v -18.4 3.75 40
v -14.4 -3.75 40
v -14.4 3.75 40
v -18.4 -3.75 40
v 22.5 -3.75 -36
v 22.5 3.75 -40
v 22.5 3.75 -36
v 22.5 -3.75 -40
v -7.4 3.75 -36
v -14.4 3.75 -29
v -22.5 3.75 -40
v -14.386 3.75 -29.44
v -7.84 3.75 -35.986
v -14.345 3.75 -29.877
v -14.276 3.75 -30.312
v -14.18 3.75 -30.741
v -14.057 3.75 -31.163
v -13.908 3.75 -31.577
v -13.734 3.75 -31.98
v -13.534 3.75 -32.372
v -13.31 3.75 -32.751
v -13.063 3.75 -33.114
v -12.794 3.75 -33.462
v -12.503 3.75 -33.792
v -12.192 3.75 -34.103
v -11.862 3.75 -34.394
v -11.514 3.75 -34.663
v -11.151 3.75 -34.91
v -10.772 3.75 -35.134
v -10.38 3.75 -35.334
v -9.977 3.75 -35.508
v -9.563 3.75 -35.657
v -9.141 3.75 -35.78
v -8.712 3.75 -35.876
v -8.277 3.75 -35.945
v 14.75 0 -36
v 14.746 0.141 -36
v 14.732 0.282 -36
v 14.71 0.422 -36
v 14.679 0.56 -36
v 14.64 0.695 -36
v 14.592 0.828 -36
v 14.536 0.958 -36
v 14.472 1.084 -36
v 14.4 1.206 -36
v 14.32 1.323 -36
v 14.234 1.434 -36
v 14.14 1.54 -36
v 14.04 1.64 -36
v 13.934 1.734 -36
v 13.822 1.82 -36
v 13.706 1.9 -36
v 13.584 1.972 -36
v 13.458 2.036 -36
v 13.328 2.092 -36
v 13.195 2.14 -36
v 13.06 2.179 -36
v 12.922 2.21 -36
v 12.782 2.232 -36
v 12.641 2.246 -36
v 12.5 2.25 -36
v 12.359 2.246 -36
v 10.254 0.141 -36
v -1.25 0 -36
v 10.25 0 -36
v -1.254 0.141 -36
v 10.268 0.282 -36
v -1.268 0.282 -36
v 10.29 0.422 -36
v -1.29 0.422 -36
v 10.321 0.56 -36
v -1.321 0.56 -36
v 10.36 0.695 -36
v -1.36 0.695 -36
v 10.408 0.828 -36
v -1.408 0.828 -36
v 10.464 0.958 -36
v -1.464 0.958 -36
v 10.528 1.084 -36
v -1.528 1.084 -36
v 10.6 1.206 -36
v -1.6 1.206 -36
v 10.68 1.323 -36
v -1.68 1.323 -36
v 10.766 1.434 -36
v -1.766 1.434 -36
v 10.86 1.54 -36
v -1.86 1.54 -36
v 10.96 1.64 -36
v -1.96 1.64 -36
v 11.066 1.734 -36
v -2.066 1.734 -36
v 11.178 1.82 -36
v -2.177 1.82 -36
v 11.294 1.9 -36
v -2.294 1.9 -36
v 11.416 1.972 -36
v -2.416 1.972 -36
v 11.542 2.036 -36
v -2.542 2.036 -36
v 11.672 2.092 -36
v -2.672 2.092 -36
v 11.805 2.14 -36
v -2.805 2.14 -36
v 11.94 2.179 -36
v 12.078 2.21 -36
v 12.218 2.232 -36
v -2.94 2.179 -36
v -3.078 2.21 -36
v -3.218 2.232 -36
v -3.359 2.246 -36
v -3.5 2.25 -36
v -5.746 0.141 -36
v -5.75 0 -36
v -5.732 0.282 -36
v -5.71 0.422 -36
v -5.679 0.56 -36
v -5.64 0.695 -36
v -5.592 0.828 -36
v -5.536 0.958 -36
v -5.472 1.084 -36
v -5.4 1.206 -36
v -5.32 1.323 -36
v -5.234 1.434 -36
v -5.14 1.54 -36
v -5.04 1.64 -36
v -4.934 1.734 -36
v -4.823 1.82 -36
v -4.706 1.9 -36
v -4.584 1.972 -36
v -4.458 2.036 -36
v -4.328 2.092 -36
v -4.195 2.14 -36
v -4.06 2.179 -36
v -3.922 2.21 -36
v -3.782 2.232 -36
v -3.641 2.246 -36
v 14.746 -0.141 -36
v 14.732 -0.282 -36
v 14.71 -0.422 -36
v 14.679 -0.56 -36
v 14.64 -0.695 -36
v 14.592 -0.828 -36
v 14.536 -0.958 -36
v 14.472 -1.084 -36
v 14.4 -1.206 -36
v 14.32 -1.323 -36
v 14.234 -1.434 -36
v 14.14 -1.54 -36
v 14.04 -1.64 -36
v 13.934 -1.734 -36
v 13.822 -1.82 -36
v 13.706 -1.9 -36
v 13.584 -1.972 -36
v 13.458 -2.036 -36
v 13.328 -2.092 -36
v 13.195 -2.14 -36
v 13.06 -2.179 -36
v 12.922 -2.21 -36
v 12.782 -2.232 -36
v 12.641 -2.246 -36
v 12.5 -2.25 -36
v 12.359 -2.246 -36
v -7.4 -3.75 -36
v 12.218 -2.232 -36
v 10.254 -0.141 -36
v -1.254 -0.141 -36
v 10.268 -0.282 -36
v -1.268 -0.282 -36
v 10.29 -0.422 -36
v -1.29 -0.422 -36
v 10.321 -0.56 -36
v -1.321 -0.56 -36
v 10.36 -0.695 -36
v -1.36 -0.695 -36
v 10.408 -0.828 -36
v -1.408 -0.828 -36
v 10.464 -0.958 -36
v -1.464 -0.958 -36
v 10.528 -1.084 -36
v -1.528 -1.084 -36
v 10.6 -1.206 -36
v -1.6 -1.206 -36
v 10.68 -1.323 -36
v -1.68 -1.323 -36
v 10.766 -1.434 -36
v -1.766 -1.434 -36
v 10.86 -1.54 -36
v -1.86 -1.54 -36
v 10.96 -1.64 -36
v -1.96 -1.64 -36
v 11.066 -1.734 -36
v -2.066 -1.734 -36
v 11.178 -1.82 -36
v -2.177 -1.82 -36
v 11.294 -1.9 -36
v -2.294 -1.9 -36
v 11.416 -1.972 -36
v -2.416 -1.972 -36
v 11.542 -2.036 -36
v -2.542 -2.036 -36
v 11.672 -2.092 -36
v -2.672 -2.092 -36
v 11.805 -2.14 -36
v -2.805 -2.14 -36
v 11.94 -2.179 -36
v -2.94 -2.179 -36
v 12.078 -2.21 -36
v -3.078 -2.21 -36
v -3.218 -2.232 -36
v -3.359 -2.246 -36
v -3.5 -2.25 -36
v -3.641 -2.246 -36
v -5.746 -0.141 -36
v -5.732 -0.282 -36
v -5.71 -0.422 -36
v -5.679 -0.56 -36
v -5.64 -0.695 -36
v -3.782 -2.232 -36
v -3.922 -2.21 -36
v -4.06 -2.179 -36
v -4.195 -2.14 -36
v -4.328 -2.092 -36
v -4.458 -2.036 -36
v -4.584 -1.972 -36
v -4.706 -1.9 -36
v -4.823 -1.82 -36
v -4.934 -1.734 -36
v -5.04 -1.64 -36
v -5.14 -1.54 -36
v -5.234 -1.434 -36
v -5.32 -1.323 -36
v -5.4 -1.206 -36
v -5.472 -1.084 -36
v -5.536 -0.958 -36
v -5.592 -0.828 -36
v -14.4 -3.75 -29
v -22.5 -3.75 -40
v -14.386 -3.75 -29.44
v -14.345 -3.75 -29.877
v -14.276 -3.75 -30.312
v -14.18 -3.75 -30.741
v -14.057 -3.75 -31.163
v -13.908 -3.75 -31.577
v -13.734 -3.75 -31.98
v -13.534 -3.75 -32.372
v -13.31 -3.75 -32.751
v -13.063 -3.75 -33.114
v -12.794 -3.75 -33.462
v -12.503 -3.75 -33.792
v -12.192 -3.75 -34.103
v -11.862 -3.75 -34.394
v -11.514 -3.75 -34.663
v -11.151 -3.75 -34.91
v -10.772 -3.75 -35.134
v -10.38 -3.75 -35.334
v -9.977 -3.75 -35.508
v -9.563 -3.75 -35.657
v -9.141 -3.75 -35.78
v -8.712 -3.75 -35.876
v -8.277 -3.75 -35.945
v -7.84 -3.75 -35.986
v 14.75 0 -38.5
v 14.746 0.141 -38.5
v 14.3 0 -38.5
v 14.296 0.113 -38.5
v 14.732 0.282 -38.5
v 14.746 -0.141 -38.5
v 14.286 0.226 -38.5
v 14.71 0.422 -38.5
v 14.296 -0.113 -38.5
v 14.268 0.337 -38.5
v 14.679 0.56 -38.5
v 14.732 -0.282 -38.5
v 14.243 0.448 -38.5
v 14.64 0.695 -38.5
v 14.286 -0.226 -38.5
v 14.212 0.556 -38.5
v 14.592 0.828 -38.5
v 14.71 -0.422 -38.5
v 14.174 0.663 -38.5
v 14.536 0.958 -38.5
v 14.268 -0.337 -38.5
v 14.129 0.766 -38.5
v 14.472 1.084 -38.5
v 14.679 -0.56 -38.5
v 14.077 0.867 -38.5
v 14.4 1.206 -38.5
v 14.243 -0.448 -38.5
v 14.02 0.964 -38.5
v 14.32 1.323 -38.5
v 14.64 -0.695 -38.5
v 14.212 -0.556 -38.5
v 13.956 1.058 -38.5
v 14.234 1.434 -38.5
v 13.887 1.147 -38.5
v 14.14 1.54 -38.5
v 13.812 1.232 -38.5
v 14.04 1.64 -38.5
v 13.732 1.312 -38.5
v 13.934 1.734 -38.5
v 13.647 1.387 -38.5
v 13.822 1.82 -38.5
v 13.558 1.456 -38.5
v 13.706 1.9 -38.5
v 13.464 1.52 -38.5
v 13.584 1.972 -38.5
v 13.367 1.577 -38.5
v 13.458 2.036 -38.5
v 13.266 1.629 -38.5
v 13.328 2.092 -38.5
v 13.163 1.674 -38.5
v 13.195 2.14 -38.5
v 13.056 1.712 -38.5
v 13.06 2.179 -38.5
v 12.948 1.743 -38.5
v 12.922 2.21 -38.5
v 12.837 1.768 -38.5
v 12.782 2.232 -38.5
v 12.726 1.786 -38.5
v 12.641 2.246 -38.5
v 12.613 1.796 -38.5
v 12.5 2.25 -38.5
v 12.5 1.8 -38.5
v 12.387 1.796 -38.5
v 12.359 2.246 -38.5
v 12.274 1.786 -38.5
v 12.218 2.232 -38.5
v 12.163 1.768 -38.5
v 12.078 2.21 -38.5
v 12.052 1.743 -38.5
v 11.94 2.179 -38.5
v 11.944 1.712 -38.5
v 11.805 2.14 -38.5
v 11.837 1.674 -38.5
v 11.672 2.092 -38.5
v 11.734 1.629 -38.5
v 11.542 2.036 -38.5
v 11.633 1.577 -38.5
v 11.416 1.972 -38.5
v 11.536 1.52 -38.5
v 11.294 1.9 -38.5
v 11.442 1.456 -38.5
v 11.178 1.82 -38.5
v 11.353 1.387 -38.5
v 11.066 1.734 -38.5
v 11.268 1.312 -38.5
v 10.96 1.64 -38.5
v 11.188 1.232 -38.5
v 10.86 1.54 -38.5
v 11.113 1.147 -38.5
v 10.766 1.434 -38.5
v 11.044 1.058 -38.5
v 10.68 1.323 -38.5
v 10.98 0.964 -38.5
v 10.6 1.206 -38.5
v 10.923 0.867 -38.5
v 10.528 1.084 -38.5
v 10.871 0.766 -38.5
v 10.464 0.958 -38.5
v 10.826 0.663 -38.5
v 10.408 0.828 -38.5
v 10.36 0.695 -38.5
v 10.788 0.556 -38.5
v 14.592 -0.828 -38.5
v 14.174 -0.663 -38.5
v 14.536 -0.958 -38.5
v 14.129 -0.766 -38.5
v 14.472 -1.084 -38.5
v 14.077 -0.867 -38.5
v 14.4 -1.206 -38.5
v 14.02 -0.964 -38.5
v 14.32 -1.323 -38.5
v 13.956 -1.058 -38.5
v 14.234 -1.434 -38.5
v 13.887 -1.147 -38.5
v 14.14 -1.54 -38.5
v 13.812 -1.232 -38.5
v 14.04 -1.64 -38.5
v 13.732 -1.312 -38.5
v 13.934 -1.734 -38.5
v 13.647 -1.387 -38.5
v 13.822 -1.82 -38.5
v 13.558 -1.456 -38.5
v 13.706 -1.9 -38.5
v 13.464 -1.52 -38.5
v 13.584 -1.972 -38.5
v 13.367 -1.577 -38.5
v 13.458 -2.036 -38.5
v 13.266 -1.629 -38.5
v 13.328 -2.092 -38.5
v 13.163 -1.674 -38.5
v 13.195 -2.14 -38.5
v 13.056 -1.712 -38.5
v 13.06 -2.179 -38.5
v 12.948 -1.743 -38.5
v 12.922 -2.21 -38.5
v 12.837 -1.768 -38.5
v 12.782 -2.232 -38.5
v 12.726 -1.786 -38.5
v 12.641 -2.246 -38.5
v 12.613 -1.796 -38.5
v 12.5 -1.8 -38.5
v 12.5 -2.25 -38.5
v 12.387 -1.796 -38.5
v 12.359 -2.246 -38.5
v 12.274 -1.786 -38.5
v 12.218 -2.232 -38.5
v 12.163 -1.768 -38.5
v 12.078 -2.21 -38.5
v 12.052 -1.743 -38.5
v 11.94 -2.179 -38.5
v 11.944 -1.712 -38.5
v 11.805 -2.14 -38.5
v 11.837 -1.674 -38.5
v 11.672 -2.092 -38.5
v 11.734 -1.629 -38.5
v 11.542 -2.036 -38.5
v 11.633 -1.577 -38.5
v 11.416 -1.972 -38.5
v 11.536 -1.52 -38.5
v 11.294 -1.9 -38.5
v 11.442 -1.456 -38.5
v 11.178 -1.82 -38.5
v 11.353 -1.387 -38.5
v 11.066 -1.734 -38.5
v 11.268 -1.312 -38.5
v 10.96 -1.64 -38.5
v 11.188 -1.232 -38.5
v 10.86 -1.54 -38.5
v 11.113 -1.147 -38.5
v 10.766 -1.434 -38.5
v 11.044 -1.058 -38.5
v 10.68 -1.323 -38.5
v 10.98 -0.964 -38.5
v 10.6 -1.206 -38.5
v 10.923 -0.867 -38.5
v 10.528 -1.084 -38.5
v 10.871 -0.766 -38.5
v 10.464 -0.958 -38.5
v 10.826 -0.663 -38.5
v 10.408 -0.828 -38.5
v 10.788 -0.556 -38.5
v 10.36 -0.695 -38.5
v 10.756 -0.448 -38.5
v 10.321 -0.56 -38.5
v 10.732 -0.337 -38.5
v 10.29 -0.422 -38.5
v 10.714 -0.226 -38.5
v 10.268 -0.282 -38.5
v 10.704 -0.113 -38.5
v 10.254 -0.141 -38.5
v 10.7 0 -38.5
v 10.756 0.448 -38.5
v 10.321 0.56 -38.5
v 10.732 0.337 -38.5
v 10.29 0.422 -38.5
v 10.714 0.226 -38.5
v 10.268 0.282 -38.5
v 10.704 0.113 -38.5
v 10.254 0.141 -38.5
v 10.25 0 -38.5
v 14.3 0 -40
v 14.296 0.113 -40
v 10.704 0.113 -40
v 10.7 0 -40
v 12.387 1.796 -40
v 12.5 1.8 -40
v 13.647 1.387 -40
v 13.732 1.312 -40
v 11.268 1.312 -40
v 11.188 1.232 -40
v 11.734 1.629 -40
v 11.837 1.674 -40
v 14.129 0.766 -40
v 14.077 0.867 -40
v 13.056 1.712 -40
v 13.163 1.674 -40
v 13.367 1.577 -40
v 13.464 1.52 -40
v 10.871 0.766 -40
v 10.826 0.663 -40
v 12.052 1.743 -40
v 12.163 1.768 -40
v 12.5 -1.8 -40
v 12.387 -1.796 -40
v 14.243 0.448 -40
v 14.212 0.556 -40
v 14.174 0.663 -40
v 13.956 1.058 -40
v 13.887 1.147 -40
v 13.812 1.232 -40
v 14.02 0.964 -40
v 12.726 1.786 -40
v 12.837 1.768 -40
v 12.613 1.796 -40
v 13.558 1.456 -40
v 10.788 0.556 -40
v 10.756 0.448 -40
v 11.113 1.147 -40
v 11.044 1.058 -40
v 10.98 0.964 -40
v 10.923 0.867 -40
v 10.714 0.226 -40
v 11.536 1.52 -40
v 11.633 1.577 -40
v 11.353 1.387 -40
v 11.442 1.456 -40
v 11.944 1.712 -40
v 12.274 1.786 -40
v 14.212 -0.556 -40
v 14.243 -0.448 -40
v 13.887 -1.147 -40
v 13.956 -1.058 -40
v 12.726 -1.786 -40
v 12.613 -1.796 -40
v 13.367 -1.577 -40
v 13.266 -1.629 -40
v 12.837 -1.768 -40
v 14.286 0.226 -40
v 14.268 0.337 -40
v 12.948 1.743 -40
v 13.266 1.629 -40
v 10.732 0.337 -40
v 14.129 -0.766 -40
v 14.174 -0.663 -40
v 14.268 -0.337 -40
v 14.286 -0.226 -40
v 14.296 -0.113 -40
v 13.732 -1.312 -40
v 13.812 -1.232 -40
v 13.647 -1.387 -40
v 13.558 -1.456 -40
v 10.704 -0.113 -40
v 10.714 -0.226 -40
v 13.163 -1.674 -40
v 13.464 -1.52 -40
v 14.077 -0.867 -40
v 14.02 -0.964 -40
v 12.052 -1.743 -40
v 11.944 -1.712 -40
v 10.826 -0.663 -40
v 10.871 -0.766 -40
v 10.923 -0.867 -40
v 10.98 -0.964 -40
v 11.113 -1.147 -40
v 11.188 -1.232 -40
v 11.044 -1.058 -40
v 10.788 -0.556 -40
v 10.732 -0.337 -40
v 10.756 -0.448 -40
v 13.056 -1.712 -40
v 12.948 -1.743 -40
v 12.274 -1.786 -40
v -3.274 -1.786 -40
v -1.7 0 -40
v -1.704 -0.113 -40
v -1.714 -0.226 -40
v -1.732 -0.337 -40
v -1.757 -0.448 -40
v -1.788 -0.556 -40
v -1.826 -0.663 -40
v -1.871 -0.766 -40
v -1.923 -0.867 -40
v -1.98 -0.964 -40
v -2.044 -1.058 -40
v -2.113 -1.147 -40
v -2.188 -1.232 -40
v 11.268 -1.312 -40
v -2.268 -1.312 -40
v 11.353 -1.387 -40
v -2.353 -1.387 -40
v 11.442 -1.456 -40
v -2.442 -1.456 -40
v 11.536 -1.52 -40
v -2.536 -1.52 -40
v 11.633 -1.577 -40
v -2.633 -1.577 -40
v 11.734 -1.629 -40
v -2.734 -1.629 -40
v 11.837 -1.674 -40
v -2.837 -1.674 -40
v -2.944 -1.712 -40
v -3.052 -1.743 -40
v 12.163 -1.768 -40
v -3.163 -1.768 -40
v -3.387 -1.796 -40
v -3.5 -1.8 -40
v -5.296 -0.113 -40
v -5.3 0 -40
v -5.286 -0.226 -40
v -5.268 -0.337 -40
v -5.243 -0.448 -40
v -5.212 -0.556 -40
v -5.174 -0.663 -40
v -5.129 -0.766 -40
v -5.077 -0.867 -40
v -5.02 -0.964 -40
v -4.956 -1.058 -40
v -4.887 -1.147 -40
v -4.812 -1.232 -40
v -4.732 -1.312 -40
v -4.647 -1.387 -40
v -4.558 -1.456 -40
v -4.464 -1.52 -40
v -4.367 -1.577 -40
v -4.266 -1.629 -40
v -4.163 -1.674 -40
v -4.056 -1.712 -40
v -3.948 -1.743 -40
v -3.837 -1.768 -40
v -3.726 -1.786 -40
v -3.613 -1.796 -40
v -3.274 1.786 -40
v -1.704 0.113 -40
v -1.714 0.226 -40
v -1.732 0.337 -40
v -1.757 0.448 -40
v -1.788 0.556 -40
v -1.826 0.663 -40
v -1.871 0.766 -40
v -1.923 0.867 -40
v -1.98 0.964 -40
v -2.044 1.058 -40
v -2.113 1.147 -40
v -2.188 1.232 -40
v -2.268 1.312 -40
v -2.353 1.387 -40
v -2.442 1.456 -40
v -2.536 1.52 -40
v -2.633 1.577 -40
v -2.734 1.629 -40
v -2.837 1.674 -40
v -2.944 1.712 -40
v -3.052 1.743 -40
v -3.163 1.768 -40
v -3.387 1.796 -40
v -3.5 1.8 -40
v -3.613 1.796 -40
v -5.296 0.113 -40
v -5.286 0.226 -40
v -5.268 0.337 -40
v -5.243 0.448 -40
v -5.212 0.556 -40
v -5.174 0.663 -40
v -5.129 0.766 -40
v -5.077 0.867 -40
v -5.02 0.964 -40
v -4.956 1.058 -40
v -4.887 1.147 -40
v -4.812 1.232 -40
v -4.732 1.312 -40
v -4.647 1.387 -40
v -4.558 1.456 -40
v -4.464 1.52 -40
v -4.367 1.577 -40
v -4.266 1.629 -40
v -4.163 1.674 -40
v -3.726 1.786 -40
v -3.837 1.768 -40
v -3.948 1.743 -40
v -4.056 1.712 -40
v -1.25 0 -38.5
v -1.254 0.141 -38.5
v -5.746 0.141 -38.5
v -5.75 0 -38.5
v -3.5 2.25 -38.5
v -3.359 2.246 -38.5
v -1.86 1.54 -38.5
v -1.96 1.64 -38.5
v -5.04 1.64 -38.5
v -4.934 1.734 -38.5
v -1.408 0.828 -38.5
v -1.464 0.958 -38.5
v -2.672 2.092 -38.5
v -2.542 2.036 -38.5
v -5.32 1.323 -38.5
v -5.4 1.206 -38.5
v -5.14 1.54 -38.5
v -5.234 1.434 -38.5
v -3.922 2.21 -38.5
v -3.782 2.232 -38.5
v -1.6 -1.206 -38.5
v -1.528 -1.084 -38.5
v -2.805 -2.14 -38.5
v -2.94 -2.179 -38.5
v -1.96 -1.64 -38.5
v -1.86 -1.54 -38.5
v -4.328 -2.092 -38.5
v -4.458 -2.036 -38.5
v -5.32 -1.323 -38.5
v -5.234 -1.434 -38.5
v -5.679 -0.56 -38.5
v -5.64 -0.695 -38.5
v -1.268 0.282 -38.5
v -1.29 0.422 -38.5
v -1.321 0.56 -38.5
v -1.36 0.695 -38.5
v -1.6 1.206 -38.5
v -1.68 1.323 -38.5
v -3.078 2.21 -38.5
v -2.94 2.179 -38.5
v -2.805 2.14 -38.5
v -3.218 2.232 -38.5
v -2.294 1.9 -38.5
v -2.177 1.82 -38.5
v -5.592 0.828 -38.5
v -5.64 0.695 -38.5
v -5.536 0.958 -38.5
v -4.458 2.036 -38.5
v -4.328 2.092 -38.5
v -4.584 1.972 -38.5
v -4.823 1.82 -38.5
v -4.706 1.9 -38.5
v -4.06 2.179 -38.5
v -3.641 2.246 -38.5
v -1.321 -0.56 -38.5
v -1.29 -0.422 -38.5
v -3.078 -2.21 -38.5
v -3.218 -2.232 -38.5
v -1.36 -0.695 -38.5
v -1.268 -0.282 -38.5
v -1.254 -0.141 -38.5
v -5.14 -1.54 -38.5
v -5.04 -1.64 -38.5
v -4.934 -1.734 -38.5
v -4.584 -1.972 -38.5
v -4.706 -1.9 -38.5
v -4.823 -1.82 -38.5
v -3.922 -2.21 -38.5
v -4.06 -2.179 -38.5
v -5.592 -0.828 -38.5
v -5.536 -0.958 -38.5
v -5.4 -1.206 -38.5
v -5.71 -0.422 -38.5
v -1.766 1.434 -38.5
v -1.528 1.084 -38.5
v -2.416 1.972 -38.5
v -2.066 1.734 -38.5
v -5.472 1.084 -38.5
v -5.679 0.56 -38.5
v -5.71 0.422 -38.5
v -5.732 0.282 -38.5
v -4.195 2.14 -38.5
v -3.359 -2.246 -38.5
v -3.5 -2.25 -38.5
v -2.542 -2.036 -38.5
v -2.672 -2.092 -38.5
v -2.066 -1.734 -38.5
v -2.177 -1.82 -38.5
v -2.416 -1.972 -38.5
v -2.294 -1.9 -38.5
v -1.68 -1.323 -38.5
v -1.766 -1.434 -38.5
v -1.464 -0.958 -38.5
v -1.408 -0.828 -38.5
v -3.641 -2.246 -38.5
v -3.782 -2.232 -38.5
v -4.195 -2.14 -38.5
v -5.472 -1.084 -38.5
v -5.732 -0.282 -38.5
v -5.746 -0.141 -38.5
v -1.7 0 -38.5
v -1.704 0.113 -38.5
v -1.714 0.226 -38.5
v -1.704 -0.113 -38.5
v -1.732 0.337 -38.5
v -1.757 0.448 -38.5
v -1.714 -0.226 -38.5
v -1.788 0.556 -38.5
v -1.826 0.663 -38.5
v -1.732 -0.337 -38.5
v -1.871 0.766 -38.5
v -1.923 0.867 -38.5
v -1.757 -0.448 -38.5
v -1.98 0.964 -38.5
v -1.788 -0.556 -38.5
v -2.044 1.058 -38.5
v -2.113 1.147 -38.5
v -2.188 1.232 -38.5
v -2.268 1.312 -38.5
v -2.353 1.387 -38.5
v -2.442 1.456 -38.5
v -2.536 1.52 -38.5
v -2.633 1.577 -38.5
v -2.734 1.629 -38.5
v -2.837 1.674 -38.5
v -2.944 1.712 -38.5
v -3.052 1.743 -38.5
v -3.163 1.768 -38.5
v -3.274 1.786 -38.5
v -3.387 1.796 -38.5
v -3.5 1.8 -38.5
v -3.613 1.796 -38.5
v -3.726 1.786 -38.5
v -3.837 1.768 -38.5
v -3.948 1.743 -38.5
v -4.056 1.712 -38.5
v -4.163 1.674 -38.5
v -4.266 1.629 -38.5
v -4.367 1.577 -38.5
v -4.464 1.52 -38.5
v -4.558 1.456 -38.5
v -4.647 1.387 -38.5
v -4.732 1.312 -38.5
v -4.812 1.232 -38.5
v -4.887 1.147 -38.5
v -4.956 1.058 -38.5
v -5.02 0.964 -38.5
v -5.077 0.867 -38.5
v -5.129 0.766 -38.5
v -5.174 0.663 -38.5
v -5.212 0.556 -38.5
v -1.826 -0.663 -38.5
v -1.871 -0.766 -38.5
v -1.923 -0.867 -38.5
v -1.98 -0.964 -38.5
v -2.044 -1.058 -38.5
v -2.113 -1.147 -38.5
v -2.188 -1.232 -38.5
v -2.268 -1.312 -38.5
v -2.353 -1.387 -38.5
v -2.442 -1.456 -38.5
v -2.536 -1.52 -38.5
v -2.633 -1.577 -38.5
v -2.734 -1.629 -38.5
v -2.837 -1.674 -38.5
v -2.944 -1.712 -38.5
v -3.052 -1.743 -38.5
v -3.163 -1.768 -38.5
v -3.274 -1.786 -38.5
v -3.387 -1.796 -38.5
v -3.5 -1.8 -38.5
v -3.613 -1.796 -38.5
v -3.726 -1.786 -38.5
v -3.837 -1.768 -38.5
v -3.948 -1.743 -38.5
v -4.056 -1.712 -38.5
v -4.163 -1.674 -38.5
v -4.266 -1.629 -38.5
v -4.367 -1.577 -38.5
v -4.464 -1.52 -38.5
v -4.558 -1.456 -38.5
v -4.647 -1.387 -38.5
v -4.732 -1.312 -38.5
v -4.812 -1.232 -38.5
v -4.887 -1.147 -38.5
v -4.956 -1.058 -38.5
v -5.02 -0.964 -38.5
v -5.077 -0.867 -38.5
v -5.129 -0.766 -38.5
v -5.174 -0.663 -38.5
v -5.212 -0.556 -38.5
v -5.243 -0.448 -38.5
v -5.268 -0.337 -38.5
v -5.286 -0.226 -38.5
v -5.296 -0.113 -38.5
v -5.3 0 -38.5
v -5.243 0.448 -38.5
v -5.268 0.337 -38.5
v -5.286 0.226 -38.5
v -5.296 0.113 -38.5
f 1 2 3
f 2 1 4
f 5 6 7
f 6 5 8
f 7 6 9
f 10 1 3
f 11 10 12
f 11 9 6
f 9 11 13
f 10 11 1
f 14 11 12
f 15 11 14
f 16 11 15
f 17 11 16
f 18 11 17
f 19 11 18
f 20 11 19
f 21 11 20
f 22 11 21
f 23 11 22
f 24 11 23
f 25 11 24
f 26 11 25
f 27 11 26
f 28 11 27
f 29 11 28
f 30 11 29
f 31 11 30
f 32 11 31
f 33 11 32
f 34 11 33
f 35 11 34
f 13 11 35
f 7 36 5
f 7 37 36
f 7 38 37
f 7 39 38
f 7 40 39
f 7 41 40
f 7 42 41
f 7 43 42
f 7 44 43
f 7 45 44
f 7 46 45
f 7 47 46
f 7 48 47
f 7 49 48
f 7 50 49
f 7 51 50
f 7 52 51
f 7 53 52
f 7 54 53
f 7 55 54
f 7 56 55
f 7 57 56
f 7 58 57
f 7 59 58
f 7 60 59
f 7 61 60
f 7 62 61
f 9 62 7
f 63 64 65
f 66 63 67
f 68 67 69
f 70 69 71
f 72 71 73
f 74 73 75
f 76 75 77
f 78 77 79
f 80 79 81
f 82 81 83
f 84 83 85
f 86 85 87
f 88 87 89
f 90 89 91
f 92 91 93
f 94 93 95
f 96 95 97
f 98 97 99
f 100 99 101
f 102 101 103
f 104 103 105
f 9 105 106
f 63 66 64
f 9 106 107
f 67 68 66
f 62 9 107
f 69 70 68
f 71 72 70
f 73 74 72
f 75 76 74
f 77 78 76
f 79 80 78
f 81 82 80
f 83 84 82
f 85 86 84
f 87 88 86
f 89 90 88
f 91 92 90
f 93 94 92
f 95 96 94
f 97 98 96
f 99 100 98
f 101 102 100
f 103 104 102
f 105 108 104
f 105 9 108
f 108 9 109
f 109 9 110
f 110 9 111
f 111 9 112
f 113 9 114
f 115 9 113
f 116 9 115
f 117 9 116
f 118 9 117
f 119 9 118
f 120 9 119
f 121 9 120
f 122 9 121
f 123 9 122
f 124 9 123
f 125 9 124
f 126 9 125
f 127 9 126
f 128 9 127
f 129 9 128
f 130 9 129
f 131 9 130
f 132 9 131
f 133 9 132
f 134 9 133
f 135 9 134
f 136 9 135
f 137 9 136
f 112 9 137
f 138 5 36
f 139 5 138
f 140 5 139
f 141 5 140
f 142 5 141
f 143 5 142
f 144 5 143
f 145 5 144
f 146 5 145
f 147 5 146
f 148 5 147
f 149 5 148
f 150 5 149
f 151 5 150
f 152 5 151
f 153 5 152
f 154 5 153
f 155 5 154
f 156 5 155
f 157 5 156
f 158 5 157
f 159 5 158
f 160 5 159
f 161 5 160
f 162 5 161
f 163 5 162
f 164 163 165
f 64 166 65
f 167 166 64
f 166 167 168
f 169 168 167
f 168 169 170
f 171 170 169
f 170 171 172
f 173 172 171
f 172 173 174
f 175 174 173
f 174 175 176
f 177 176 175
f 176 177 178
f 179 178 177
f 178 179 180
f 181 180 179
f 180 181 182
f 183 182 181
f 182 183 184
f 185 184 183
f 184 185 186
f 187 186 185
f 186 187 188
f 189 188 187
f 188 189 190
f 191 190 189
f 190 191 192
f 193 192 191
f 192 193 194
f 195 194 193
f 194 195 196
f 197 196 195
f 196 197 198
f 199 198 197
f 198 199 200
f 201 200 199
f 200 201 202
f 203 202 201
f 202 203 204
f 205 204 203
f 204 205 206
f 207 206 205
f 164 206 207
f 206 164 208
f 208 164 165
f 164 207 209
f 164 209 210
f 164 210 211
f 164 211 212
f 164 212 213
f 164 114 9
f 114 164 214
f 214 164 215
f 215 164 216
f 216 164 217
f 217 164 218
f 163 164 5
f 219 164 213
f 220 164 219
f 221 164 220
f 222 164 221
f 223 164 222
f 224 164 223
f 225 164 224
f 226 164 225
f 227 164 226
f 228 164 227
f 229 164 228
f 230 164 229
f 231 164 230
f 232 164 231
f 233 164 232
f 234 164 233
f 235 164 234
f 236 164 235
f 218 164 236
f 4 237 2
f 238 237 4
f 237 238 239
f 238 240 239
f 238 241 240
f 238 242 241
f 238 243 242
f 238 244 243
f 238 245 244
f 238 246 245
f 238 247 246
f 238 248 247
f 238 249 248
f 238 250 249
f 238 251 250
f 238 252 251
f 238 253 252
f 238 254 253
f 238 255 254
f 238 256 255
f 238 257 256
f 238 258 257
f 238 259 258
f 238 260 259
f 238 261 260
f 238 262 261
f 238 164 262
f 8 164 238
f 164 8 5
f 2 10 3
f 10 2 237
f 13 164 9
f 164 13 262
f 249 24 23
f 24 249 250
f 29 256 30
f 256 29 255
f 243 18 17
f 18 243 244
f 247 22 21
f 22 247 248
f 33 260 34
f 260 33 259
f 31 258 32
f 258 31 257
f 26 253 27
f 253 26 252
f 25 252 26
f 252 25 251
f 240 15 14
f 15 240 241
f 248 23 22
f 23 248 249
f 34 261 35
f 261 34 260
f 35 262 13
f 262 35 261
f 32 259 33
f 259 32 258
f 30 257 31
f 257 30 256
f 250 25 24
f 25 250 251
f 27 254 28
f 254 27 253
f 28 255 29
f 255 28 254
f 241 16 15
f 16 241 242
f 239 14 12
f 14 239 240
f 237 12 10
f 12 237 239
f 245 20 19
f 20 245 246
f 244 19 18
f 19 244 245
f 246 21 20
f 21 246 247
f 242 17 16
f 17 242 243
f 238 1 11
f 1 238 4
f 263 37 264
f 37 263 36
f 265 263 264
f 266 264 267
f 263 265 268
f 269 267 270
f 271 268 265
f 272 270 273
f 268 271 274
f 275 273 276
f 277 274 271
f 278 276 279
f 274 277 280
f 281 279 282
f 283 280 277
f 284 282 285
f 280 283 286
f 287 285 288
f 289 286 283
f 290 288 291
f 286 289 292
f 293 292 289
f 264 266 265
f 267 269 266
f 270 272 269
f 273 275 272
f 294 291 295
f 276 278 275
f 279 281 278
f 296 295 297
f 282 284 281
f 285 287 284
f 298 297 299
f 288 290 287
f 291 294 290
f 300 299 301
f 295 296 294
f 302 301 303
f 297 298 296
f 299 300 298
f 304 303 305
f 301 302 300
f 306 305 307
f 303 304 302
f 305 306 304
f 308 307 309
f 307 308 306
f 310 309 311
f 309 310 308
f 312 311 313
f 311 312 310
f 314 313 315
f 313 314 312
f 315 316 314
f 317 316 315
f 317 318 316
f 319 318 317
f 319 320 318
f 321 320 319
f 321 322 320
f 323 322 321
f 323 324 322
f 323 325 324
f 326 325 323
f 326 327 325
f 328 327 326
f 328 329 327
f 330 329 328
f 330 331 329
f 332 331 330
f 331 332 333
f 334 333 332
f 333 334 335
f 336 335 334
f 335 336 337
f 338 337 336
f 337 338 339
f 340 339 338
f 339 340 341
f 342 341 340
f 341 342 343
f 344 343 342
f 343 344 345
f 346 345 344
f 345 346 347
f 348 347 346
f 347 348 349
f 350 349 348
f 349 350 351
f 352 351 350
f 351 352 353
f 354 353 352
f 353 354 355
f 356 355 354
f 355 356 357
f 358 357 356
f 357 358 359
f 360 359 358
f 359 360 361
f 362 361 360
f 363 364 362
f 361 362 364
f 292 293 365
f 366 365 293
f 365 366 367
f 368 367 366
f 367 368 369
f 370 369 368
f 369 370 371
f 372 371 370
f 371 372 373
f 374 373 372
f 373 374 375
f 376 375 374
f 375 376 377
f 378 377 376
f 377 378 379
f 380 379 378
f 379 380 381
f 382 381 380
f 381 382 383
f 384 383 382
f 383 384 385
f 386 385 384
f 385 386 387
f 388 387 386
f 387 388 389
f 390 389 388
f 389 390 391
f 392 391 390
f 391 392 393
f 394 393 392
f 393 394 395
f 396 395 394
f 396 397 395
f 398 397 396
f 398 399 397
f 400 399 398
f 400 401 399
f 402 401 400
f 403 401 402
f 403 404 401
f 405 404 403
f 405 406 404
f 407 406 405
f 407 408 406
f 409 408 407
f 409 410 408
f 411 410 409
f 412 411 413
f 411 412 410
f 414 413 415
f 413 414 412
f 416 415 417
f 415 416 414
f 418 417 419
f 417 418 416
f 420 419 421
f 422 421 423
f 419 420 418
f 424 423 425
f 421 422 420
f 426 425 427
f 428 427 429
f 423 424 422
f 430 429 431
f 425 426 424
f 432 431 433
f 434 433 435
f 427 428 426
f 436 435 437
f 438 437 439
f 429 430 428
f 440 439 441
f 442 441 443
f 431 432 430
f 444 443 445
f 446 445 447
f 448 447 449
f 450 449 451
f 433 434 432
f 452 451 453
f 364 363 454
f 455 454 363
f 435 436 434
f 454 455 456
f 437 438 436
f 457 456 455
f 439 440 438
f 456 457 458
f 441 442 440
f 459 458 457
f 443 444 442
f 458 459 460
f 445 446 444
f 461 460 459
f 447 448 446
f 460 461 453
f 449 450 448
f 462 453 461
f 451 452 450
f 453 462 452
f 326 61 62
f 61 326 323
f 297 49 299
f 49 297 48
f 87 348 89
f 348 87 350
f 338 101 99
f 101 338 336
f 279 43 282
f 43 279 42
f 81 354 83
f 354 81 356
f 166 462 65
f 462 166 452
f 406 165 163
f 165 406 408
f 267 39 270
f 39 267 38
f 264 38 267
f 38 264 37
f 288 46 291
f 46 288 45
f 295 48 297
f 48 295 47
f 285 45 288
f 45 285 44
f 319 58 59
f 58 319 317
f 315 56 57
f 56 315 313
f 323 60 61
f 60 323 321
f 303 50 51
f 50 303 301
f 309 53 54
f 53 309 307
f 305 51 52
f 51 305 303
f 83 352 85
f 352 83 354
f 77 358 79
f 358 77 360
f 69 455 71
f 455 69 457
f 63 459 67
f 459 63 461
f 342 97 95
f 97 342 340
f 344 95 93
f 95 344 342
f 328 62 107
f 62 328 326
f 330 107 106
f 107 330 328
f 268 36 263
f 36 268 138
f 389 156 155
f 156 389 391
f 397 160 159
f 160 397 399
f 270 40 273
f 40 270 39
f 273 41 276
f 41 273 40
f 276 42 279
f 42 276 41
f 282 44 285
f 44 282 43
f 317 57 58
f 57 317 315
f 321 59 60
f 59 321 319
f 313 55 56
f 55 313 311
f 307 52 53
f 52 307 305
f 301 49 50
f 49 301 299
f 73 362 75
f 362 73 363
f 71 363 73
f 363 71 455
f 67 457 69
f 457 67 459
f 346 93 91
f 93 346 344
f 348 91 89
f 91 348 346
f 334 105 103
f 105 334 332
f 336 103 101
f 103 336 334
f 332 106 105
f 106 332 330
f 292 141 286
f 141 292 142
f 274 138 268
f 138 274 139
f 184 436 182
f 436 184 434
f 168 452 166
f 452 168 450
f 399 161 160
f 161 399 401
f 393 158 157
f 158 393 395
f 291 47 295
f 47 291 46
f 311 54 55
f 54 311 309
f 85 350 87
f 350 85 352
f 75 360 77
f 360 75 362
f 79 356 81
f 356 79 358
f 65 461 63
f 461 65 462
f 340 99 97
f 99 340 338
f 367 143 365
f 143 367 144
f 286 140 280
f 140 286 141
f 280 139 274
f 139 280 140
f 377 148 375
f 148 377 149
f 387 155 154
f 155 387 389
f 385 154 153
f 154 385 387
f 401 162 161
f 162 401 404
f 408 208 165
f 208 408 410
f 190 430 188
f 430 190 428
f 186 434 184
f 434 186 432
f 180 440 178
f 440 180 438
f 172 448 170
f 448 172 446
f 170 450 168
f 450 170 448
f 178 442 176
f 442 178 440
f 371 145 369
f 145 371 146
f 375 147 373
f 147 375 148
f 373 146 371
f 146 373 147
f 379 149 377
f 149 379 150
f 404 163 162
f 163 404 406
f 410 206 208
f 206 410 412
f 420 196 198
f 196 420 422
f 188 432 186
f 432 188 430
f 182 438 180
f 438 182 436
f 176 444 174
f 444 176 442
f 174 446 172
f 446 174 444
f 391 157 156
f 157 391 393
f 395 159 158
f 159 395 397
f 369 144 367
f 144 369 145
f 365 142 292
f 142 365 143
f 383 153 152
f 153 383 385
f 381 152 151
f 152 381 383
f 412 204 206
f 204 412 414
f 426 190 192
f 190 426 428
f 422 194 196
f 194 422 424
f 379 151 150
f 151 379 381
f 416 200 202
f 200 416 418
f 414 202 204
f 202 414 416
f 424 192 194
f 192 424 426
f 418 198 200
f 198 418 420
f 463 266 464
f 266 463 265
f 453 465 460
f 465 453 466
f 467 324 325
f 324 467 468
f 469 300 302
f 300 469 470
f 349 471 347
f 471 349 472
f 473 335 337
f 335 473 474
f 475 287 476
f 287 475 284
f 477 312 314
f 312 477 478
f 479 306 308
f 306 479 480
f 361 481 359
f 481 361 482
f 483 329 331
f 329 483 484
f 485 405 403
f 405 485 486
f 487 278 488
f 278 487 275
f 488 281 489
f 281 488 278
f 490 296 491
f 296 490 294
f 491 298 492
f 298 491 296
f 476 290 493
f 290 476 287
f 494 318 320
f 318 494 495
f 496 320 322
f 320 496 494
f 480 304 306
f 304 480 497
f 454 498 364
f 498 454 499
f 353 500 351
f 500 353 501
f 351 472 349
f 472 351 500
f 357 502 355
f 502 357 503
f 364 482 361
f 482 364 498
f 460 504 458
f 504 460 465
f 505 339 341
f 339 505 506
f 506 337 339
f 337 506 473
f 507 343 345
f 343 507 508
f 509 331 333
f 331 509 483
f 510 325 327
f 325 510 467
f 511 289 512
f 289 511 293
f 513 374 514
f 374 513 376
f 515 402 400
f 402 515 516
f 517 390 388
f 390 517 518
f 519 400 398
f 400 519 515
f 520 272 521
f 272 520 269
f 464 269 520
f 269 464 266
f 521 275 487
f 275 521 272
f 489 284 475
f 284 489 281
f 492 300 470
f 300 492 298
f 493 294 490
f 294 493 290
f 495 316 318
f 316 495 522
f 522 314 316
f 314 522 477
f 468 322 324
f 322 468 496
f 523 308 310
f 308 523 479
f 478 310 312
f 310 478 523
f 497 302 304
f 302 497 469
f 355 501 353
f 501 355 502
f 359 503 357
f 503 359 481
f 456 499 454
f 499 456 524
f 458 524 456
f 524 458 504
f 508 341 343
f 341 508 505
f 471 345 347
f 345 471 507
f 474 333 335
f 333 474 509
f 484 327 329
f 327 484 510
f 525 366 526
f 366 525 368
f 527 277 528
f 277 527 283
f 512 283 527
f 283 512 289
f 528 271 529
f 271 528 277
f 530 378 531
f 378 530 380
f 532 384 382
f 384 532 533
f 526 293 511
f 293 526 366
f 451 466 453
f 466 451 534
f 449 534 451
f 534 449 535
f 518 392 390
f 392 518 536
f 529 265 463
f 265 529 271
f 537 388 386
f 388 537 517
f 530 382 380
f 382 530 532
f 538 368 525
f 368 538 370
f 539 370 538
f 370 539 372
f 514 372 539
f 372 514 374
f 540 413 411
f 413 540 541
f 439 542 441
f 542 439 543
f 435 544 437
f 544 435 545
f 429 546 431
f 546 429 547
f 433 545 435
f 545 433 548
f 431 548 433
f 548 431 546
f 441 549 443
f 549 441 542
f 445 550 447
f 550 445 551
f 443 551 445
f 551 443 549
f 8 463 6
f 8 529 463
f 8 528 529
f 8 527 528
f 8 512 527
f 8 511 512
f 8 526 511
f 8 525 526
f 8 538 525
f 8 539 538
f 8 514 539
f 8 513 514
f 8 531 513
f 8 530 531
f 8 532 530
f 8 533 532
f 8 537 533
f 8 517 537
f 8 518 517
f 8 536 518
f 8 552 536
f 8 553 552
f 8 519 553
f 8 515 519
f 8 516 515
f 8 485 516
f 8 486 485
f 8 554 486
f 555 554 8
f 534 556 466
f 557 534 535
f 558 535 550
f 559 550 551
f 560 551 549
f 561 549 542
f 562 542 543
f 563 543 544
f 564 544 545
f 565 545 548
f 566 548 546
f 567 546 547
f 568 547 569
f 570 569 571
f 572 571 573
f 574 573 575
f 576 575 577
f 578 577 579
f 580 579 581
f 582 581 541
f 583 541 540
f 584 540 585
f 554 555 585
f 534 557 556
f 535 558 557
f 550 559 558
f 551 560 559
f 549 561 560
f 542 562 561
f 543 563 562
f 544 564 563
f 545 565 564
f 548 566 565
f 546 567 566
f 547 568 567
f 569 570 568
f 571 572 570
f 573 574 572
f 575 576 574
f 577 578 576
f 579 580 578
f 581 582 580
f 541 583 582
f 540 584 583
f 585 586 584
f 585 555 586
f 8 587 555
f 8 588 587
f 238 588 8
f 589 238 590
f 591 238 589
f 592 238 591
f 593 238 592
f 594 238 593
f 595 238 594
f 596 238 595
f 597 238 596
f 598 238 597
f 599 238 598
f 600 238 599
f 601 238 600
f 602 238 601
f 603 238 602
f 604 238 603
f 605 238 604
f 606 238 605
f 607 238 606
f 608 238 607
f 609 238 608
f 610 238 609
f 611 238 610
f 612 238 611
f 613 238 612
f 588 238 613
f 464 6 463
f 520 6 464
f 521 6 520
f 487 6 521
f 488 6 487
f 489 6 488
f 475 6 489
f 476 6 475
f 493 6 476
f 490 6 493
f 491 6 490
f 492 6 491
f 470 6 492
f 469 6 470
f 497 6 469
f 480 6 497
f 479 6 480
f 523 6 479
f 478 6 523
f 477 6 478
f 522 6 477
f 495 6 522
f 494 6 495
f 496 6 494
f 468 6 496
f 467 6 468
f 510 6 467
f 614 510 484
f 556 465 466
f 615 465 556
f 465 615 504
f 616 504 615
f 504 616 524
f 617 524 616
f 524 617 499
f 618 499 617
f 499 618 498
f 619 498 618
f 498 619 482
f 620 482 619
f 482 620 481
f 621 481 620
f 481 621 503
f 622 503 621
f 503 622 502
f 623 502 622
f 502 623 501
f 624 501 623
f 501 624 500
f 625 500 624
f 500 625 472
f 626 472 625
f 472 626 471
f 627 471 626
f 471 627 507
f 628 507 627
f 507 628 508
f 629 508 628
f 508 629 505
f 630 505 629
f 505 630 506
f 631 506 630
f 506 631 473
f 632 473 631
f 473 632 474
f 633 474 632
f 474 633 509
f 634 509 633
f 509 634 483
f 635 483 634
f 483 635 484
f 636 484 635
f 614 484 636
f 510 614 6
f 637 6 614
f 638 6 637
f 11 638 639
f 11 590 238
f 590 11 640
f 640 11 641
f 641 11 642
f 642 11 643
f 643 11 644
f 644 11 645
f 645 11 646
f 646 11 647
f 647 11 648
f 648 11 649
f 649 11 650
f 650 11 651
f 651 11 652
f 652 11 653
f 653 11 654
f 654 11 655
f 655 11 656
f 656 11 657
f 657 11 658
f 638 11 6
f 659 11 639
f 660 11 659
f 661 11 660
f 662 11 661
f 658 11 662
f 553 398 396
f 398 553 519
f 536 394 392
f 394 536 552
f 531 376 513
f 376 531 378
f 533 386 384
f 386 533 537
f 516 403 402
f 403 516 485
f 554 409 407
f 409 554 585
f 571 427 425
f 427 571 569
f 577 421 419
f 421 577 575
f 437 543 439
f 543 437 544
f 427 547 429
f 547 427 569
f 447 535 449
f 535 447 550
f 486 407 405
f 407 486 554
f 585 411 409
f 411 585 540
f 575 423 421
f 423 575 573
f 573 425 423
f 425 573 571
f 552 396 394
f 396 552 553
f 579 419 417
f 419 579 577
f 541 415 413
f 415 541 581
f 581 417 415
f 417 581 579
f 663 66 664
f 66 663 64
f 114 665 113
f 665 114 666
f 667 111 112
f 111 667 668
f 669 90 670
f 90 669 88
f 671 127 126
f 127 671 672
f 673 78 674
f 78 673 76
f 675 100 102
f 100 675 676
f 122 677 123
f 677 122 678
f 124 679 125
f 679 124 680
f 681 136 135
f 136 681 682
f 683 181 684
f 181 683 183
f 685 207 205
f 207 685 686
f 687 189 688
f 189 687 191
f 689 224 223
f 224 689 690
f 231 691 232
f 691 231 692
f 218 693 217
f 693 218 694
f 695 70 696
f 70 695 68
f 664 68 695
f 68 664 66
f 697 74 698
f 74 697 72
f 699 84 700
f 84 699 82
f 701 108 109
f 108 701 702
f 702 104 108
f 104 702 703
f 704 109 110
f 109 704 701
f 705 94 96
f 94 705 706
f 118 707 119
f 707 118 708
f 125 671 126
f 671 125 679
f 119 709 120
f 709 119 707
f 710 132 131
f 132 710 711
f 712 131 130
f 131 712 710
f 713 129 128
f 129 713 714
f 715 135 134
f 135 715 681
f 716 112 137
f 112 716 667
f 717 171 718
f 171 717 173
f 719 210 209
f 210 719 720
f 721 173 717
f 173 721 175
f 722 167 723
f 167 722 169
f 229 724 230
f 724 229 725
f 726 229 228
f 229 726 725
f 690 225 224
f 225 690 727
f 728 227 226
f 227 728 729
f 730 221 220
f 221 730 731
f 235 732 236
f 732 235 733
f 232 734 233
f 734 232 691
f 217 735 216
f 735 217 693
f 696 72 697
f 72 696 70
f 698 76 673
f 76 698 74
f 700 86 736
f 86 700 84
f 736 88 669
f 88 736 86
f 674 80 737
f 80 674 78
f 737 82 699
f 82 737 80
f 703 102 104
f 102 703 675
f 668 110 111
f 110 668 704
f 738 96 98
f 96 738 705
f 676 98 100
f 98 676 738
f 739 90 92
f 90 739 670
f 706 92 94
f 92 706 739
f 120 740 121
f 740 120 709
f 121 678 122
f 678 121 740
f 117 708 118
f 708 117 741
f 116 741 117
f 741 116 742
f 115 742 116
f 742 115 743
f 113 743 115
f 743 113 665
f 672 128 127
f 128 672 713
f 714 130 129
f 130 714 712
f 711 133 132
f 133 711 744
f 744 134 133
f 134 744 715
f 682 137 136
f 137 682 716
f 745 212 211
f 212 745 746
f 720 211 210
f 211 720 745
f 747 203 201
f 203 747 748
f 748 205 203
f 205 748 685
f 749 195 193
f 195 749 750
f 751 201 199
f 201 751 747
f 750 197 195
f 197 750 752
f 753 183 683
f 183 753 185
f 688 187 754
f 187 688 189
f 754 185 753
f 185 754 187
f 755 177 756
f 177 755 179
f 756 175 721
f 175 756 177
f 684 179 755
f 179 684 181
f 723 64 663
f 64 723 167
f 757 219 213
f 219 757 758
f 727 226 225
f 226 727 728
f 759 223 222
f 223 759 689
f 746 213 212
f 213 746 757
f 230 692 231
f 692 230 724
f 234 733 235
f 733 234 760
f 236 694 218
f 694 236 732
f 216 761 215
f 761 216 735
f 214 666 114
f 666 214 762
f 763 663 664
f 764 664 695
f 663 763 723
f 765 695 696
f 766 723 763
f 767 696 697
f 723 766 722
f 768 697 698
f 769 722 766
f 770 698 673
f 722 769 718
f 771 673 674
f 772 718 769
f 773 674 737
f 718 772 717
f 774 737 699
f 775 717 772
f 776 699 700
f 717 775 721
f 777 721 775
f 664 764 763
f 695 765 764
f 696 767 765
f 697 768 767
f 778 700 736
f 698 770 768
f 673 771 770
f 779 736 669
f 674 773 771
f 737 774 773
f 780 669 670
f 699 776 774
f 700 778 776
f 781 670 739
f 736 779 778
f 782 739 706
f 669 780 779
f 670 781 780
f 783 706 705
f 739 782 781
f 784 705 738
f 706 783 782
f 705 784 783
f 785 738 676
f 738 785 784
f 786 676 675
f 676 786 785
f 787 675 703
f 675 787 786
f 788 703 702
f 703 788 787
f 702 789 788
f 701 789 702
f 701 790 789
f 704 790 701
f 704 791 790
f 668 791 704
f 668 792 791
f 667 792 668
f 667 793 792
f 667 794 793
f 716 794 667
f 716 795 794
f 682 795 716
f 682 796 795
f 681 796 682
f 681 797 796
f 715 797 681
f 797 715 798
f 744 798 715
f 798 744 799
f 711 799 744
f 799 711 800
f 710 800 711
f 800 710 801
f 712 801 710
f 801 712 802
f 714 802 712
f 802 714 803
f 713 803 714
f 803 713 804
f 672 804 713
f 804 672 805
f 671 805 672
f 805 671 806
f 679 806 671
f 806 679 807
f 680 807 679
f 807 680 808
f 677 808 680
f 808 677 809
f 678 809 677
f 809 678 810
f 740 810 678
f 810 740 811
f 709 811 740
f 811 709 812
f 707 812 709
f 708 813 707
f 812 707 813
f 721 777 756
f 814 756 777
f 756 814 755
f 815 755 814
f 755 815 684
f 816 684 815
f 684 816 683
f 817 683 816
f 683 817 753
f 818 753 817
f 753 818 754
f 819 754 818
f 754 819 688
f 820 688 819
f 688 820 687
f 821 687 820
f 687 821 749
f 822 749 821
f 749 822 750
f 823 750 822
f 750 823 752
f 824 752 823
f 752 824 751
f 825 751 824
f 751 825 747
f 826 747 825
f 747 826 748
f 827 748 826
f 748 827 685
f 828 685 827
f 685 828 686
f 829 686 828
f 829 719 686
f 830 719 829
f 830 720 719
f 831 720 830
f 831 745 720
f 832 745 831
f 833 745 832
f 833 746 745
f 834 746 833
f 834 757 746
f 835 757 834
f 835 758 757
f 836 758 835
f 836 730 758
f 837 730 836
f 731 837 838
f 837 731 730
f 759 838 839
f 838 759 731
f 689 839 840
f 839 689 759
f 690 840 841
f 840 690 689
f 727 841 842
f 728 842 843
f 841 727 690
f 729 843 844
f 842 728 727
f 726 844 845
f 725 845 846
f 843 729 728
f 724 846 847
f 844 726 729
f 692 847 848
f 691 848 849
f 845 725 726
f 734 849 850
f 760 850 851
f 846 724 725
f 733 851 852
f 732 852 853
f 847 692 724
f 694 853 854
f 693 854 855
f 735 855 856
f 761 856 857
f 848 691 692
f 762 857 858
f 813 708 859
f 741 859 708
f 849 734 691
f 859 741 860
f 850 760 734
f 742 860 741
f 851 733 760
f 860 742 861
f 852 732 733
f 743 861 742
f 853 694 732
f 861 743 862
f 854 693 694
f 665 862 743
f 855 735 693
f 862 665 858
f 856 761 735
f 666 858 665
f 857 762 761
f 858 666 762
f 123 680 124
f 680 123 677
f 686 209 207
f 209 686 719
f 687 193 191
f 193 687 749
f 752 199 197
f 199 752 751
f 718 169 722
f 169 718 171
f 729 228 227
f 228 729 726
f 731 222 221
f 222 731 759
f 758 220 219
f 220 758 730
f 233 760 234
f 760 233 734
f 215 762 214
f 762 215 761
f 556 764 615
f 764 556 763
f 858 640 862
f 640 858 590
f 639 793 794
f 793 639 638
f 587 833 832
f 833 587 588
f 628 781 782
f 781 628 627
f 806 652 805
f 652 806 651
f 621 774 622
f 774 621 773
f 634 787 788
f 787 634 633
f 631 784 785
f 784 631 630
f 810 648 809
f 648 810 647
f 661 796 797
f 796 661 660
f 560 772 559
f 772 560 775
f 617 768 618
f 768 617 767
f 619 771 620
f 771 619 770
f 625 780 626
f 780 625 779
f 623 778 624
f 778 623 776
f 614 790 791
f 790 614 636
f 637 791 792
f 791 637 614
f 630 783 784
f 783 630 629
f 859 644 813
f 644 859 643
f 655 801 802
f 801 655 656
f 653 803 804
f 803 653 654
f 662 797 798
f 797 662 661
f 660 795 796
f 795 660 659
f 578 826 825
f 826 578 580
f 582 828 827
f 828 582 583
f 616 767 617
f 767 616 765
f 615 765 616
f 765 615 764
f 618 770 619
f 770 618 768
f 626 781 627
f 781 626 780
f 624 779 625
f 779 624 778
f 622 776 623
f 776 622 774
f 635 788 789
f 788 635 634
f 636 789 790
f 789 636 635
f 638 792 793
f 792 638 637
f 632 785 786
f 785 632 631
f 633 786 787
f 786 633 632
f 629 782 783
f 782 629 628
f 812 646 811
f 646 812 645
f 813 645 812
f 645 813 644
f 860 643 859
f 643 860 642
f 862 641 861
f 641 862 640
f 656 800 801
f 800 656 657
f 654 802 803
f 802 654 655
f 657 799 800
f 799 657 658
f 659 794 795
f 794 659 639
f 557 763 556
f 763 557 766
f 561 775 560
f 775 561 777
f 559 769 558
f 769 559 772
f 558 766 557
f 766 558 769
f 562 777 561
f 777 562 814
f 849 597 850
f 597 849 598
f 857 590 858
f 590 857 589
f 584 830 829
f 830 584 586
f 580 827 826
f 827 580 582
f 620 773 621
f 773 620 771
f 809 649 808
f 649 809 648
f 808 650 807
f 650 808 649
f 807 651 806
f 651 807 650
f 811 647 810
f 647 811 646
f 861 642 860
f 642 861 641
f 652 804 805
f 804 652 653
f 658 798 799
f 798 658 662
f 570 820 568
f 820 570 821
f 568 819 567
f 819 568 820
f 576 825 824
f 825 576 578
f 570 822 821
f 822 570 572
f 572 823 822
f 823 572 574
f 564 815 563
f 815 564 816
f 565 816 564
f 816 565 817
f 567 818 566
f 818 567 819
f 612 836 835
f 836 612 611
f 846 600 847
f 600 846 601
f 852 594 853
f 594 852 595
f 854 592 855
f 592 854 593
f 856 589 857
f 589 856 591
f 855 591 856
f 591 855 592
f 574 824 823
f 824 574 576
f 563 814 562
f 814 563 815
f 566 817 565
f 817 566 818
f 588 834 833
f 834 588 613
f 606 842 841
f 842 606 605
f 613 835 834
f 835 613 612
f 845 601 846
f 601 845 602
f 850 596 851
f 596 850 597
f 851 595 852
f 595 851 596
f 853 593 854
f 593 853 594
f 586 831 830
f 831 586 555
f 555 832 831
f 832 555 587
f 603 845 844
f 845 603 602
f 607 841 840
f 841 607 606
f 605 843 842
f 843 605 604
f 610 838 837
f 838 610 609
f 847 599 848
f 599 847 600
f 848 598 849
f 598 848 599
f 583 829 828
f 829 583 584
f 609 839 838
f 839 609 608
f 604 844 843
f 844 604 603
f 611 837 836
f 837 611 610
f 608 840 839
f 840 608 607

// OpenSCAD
$fn=100;

// Dimensiones
L = 45; // Largo del pie
H = 80; // Altura
W = 7.5; // Ancho
R = 7; // Radio curvatura angulo

// Orificios para tornillos
sep = 16; // Separacion
db = 10; // Distancia al borde del pie


module envolvente(){
    cube([L,W,H], center = true);
}

L2 = L*0.82; H2 = H-4; // Largo y alto a quitar para el ahuecamiento central
w = L-L2-H+H2; s = sqrt(H*H+w*w); // Dimensiones rectangulo diagonal
module rem(){
    union(){ // Recorte interior
        translate([(L-L2+R)/2,0,(H-H2)/2])
            cube([(L2-R),W,H2], center = true);
        
        translate([(L-L2)/2,0,(H-H2+R)/2])
            cube([L2,W,H2-R], center = true);
        
        translate([L/2-L2+R,0,H/2-H2+R])
        rotate([0,90,90])
            cylinder(r = R, h = W+1, center = true);
    }
    
    // Recorte diagonal
    translate([-L/2,-W/2,-H/2])
    rotate([0,-asin(H/s),0])
        cube([s,W,w*H/s]);
}

Rh1 = 2.25; // Radio para cabeza del tornillo
Rh2 = 1.8; // Radio para rosca del tornillo
ph = 1.5; // Espesor de la zona de ajuste
module holes(){
    
    translate([L/2-db,0,-H2/2+ph/2])
        cylinder(r = Rh1, h = H-H2-ph, center = true);
    translate([L/2-db,0,-H2/2])
        cylinder(r = Rh2, h = H-H2, center = true);
    
    translate([L/2-db-sep,0,-H2/2+ph/2])
        cylinder(r = Rh1, h = H-H2-ph, center = true);
    translate([L/2-db-sep,0,-H2/2])
        cylinder(r = Rh2, h = H-H2, center = true);
}


difference(){
    envolvente();
    rem();
    holes();
}
